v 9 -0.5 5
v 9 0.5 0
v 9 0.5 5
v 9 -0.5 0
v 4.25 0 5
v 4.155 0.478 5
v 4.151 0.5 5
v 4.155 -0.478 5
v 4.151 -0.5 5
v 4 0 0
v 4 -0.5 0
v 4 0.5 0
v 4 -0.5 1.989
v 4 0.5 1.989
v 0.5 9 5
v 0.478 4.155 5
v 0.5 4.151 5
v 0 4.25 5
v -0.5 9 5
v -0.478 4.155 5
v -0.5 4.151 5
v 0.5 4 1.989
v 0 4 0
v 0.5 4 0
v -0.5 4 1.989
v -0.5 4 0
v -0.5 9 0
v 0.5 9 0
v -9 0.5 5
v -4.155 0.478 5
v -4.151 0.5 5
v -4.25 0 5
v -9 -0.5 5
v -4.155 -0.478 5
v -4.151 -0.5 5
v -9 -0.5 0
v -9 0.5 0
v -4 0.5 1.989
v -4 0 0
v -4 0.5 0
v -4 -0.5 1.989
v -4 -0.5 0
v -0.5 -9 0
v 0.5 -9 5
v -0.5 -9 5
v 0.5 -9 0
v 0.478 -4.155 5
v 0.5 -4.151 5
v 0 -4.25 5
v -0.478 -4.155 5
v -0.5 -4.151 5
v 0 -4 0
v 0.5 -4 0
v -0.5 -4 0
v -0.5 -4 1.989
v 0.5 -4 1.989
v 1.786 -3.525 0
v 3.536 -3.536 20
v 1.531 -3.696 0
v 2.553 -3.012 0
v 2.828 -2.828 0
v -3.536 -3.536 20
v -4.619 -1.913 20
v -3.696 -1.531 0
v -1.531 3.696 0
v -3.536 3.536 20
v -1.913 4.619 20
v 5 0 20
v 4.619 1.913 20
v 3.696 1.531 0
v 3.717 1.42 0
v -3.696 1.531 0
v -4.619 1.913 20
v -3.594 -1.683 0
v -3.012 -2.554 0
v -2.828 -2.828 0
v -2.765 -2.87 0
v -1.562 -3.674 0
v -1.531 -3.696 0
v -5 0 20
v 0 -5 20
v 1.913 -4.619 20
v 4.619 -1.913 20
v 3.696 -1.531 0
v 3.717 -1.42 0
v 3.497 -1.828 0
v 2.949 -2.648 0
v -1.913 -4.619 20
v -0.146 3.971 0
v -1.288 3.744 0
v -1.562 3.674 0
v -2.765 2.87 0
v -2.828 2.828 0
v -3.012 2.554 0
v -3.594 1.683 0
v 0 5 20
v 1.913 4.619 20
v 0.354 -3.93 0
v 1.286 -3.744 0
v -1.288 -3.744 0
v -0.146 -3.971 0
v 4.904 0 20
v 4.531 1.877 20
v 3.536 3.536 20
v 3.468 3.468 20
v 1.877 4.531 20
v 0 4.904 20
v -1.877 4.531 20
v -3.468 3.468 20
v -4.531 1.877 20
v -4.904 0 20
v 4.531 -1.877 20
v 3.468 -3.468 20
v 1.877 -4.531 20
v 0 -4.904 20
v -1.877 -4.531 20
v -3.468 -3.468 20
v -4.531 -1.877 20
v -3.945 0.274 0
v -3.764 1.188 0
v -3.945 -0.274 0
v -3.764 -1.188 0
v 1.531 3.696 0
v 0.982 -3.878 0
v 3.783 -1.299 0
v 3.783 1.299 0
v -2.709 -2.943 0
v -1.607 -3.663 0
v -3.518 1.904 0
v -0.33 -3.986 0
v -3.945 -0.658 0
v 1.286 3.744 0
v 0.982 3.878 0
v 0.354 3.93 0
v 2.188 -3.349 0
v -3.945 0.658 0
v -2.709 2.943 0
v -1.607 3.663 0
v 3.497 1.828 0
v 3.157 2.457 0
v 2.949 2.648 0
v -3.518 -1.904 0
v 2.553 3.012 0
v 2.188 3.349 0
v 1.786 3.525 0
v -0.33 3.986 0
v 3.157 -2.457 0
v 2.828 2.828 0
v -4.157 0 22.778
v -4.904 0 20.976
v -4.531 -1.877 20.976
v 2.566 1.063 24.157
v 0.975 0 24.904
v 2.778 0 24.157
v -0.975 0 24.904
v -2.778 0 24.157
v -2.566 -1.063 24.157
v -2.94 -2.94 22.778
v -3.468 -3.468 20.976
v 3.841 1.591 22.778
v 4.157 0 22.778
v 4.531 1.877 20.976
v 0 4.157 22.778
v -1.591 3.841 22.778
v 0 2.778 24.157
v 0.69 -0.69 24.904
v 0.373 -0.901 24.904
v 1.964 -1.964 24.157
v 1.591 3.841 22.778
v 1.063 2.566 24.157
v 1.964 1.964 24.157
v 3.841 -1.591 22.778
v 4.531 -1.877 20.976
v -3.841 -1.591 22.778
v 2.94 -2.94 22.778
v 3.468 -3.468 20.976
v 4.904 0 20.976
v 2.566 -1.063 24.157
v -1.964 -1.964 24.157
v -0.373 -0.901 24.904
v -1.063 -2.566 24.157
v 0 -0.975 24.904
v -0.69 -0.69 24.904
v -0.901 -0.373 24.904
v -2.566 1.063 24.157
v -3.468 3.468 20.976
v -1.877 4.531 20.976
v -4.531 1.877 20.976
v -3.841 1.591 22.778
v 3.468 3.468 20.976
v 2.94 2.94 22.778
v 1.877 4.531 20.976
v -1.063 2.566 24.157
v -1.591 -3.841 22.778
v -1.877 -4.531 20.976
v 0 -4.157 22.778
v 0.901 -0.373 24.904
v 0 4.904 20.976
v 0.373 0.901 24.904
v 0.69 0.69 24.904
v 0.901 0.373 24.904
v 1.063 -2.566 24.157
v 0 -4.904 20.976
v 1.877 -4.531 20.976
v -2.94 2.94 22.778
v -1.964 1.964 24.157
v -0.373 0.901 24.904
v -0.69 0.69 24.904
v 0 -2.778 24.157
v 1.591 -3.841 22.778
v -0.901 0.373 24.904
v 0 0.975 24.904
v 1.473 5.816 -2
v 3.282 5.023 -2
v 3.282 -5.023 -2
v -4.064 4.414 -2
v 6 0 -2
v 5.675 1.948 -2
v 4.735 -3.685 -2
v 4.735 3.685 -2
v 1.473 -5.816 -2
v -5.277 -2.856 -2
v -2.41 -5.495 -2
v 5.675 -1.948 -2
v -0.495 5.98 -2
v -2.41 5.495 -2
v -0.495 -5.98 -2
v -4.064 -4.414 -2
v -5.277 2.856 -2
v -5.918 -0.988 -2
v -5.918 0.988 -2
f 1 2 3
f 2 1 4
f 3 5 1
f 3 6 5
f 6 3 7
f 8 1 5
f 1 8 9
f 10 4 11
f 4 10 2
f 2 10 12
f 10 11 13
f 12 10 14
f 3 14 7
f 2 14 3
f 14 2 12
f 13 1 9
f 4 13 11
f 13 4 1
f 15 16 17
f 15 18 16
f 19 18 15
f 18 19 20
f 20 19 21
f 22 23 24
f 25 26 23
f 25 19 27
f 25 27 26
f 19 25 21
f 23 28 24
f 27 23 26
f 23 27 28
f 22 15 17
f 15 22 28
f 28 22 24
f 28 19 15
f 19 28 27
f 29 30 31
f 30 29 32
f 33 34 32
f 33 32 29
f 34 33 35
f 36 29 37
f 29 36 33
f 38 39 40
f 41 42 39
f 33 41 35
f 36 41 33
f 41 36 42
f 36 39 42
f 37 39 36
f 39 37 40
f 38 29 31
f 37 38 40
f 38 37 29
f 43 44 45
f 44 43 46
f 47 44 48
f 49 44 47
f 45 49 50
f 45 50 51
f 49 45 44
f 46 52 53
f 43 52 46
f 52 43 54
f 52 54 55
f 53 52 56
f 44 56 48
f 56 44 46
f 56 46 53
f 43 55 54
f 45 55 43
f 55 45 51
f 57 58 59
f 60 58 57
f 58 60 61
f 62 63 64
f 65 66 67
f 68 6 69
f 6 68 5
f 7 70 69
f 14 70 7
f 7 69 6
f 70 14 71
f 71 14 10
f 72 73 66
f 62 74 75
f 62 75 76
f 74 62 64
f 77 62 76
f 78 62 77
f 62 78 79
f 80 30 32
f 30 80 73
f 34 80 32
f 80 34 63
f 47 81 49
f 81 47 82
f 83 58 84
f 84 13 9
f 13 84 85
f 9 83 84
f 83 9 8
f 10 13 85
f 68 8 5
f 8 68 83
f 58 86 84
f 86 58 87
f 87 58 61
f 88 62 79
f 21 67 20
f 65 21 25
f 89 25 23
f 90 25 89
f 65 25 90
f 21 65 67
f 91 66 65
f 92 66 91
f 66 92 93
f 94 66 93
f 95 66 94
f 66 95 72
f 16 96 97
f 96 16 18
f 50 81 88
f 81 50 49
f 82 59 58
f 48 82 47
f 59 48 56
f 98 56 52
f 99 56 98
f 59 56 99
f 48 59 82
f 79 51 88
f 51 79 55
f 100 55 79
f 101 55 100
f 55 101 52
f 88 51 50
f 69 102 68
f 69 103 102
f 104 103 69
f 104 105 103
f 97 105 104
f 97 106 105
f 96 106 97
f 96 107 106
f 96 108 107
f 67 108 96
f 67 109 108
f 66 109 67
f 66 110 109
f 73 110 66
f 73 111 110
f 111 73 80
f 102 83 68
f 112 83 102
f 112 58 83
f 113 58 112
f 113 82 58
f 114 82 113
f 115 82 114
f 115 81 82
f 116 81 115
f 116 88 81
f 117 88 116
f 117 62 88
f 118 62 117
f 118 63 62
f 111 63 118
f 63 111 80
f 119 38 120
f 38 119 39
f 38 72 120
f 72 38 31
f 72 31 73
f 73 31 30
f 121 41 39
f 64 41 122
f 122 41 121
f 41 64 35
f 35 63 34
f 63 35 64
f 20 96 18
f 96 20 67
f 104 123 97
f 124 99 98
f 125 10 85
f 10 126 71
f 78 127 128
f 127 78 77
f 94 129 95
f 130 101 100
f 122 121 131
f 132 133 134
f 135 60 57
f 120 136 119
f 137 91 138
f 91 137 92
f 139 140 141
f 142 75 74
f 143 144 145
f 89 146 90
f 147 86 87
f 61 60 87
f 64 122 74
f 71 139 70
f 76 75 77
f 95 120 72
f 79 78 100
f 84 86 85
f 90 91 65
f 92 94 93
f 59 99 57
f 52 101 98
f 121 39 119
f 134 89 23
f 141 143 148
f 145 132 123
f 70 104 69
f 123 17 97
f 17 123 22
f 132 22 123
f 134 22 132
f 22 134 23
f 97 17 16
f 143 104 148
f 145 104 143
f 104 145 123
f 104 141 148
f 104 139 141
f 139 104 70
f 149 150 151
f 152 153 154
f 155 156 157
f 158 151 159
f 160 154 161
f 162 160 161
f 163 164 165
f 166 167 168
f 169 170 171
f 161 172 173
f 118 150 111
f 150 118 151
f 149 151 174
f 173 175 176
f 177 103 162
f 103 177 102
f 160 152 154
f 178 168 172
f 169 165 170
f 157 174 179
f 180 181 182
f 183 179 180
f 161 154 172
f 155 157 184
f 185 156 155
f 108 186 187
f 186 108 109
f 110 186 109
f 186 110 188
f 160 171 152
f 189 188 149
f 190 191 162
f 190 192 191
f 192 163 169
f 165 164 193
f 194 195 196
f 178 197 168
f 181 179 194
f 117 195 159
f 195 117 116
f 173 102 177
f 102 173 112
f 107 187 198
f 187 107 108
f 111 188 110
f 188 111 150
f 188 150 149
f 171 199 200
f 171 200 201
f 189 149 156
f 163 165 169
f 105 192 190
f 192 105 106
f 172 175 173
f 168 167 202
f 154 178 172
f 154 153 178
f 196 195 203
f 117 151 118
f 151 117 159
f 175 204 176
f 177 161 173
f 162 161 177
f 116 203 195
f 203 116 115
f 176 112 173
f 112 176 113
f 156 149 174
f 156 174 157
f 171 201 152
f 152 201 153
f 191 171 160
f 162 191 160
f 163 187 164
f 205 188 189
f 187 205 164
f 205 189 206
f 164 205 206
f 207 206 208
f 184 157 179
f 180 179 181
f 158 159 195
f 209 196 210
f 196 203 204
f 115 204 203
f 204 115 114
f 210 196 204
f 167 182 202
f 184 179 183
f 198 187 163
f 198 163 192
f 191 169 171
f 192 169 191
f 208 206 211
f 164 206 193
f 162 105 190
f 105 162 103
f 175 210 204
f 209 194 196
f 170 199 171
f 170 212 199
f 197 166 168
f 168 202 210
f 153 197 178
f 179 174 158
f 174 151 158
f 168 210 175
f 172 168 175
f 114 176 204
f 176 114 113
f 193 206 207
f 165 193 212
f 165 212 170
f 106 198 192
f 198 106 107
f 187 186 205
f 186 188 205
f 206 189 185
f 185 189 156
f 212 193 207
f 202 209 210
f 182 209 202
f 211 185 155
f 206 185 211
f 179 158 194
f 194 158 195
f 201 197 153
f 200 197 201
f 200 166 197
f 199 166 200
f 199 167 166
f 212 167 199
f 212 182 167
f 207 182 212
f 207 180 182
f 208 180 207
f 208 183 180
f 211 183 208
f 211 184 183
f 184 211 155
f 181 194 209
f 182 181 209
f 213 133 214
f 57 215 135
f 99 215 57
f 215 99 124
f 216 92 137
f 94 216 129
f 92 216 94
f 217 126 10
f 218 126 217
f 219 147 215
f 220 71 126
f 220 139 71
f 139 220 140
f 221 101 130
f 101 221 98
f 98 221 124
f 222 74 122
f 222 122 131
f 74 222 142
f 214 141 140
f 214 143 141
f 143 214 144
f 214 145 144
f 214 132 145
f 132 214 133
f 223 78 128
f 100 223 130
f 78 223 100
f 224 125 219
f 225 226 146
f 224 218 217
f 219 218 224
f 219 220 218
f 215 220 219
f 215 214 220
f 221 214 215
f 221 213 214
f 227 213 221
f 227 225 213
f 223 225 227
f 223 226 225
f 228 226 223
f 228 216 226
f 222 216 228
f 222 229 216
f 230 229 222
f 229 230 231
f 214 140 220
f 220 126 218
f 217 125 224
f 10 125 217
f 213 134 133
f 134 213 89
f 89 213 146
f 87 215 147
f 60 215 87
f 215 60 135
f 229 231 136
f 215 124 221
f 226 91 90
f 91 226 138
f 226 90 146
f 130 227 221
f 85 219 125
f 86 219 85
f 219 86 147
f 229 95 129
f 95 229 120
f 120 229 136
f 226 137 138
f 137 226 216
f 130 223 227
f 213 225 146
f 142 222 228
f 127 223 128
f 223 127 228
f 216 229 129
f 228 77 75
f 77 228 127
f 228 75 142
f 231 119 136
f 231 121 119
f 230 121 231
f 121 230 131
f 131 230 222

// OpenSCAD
// Rocket Model
// A classic retro-style rocket ship.

module rocket_body() {
    cylinder(h = 20, r1 = 4, r2 = 5);
}

module nose_cone() {
    translate([0, 0, 20])
    sphere(r = 5);
}

module fins() {
    for (i = [0 : 3]) {
        rotate([0, 0, i * 90])
        translate([4, -0.5, 0])
        cube([5, 1, 5]);
    }
}

module engine() {
    translate([0, 0, -2])
    cylinder(h = 2, r1 = 6, r2 = 4);
}

module window() {
    translate([0, 0, 12])
    cylinder(h = 1, r = 2);
}

union() {
    rocket_body();
    nose_cone();
    fins();
    engine();
    translate([0, 0, 12])
    cylinder(h = 1, r = 2); // simplified window
}
